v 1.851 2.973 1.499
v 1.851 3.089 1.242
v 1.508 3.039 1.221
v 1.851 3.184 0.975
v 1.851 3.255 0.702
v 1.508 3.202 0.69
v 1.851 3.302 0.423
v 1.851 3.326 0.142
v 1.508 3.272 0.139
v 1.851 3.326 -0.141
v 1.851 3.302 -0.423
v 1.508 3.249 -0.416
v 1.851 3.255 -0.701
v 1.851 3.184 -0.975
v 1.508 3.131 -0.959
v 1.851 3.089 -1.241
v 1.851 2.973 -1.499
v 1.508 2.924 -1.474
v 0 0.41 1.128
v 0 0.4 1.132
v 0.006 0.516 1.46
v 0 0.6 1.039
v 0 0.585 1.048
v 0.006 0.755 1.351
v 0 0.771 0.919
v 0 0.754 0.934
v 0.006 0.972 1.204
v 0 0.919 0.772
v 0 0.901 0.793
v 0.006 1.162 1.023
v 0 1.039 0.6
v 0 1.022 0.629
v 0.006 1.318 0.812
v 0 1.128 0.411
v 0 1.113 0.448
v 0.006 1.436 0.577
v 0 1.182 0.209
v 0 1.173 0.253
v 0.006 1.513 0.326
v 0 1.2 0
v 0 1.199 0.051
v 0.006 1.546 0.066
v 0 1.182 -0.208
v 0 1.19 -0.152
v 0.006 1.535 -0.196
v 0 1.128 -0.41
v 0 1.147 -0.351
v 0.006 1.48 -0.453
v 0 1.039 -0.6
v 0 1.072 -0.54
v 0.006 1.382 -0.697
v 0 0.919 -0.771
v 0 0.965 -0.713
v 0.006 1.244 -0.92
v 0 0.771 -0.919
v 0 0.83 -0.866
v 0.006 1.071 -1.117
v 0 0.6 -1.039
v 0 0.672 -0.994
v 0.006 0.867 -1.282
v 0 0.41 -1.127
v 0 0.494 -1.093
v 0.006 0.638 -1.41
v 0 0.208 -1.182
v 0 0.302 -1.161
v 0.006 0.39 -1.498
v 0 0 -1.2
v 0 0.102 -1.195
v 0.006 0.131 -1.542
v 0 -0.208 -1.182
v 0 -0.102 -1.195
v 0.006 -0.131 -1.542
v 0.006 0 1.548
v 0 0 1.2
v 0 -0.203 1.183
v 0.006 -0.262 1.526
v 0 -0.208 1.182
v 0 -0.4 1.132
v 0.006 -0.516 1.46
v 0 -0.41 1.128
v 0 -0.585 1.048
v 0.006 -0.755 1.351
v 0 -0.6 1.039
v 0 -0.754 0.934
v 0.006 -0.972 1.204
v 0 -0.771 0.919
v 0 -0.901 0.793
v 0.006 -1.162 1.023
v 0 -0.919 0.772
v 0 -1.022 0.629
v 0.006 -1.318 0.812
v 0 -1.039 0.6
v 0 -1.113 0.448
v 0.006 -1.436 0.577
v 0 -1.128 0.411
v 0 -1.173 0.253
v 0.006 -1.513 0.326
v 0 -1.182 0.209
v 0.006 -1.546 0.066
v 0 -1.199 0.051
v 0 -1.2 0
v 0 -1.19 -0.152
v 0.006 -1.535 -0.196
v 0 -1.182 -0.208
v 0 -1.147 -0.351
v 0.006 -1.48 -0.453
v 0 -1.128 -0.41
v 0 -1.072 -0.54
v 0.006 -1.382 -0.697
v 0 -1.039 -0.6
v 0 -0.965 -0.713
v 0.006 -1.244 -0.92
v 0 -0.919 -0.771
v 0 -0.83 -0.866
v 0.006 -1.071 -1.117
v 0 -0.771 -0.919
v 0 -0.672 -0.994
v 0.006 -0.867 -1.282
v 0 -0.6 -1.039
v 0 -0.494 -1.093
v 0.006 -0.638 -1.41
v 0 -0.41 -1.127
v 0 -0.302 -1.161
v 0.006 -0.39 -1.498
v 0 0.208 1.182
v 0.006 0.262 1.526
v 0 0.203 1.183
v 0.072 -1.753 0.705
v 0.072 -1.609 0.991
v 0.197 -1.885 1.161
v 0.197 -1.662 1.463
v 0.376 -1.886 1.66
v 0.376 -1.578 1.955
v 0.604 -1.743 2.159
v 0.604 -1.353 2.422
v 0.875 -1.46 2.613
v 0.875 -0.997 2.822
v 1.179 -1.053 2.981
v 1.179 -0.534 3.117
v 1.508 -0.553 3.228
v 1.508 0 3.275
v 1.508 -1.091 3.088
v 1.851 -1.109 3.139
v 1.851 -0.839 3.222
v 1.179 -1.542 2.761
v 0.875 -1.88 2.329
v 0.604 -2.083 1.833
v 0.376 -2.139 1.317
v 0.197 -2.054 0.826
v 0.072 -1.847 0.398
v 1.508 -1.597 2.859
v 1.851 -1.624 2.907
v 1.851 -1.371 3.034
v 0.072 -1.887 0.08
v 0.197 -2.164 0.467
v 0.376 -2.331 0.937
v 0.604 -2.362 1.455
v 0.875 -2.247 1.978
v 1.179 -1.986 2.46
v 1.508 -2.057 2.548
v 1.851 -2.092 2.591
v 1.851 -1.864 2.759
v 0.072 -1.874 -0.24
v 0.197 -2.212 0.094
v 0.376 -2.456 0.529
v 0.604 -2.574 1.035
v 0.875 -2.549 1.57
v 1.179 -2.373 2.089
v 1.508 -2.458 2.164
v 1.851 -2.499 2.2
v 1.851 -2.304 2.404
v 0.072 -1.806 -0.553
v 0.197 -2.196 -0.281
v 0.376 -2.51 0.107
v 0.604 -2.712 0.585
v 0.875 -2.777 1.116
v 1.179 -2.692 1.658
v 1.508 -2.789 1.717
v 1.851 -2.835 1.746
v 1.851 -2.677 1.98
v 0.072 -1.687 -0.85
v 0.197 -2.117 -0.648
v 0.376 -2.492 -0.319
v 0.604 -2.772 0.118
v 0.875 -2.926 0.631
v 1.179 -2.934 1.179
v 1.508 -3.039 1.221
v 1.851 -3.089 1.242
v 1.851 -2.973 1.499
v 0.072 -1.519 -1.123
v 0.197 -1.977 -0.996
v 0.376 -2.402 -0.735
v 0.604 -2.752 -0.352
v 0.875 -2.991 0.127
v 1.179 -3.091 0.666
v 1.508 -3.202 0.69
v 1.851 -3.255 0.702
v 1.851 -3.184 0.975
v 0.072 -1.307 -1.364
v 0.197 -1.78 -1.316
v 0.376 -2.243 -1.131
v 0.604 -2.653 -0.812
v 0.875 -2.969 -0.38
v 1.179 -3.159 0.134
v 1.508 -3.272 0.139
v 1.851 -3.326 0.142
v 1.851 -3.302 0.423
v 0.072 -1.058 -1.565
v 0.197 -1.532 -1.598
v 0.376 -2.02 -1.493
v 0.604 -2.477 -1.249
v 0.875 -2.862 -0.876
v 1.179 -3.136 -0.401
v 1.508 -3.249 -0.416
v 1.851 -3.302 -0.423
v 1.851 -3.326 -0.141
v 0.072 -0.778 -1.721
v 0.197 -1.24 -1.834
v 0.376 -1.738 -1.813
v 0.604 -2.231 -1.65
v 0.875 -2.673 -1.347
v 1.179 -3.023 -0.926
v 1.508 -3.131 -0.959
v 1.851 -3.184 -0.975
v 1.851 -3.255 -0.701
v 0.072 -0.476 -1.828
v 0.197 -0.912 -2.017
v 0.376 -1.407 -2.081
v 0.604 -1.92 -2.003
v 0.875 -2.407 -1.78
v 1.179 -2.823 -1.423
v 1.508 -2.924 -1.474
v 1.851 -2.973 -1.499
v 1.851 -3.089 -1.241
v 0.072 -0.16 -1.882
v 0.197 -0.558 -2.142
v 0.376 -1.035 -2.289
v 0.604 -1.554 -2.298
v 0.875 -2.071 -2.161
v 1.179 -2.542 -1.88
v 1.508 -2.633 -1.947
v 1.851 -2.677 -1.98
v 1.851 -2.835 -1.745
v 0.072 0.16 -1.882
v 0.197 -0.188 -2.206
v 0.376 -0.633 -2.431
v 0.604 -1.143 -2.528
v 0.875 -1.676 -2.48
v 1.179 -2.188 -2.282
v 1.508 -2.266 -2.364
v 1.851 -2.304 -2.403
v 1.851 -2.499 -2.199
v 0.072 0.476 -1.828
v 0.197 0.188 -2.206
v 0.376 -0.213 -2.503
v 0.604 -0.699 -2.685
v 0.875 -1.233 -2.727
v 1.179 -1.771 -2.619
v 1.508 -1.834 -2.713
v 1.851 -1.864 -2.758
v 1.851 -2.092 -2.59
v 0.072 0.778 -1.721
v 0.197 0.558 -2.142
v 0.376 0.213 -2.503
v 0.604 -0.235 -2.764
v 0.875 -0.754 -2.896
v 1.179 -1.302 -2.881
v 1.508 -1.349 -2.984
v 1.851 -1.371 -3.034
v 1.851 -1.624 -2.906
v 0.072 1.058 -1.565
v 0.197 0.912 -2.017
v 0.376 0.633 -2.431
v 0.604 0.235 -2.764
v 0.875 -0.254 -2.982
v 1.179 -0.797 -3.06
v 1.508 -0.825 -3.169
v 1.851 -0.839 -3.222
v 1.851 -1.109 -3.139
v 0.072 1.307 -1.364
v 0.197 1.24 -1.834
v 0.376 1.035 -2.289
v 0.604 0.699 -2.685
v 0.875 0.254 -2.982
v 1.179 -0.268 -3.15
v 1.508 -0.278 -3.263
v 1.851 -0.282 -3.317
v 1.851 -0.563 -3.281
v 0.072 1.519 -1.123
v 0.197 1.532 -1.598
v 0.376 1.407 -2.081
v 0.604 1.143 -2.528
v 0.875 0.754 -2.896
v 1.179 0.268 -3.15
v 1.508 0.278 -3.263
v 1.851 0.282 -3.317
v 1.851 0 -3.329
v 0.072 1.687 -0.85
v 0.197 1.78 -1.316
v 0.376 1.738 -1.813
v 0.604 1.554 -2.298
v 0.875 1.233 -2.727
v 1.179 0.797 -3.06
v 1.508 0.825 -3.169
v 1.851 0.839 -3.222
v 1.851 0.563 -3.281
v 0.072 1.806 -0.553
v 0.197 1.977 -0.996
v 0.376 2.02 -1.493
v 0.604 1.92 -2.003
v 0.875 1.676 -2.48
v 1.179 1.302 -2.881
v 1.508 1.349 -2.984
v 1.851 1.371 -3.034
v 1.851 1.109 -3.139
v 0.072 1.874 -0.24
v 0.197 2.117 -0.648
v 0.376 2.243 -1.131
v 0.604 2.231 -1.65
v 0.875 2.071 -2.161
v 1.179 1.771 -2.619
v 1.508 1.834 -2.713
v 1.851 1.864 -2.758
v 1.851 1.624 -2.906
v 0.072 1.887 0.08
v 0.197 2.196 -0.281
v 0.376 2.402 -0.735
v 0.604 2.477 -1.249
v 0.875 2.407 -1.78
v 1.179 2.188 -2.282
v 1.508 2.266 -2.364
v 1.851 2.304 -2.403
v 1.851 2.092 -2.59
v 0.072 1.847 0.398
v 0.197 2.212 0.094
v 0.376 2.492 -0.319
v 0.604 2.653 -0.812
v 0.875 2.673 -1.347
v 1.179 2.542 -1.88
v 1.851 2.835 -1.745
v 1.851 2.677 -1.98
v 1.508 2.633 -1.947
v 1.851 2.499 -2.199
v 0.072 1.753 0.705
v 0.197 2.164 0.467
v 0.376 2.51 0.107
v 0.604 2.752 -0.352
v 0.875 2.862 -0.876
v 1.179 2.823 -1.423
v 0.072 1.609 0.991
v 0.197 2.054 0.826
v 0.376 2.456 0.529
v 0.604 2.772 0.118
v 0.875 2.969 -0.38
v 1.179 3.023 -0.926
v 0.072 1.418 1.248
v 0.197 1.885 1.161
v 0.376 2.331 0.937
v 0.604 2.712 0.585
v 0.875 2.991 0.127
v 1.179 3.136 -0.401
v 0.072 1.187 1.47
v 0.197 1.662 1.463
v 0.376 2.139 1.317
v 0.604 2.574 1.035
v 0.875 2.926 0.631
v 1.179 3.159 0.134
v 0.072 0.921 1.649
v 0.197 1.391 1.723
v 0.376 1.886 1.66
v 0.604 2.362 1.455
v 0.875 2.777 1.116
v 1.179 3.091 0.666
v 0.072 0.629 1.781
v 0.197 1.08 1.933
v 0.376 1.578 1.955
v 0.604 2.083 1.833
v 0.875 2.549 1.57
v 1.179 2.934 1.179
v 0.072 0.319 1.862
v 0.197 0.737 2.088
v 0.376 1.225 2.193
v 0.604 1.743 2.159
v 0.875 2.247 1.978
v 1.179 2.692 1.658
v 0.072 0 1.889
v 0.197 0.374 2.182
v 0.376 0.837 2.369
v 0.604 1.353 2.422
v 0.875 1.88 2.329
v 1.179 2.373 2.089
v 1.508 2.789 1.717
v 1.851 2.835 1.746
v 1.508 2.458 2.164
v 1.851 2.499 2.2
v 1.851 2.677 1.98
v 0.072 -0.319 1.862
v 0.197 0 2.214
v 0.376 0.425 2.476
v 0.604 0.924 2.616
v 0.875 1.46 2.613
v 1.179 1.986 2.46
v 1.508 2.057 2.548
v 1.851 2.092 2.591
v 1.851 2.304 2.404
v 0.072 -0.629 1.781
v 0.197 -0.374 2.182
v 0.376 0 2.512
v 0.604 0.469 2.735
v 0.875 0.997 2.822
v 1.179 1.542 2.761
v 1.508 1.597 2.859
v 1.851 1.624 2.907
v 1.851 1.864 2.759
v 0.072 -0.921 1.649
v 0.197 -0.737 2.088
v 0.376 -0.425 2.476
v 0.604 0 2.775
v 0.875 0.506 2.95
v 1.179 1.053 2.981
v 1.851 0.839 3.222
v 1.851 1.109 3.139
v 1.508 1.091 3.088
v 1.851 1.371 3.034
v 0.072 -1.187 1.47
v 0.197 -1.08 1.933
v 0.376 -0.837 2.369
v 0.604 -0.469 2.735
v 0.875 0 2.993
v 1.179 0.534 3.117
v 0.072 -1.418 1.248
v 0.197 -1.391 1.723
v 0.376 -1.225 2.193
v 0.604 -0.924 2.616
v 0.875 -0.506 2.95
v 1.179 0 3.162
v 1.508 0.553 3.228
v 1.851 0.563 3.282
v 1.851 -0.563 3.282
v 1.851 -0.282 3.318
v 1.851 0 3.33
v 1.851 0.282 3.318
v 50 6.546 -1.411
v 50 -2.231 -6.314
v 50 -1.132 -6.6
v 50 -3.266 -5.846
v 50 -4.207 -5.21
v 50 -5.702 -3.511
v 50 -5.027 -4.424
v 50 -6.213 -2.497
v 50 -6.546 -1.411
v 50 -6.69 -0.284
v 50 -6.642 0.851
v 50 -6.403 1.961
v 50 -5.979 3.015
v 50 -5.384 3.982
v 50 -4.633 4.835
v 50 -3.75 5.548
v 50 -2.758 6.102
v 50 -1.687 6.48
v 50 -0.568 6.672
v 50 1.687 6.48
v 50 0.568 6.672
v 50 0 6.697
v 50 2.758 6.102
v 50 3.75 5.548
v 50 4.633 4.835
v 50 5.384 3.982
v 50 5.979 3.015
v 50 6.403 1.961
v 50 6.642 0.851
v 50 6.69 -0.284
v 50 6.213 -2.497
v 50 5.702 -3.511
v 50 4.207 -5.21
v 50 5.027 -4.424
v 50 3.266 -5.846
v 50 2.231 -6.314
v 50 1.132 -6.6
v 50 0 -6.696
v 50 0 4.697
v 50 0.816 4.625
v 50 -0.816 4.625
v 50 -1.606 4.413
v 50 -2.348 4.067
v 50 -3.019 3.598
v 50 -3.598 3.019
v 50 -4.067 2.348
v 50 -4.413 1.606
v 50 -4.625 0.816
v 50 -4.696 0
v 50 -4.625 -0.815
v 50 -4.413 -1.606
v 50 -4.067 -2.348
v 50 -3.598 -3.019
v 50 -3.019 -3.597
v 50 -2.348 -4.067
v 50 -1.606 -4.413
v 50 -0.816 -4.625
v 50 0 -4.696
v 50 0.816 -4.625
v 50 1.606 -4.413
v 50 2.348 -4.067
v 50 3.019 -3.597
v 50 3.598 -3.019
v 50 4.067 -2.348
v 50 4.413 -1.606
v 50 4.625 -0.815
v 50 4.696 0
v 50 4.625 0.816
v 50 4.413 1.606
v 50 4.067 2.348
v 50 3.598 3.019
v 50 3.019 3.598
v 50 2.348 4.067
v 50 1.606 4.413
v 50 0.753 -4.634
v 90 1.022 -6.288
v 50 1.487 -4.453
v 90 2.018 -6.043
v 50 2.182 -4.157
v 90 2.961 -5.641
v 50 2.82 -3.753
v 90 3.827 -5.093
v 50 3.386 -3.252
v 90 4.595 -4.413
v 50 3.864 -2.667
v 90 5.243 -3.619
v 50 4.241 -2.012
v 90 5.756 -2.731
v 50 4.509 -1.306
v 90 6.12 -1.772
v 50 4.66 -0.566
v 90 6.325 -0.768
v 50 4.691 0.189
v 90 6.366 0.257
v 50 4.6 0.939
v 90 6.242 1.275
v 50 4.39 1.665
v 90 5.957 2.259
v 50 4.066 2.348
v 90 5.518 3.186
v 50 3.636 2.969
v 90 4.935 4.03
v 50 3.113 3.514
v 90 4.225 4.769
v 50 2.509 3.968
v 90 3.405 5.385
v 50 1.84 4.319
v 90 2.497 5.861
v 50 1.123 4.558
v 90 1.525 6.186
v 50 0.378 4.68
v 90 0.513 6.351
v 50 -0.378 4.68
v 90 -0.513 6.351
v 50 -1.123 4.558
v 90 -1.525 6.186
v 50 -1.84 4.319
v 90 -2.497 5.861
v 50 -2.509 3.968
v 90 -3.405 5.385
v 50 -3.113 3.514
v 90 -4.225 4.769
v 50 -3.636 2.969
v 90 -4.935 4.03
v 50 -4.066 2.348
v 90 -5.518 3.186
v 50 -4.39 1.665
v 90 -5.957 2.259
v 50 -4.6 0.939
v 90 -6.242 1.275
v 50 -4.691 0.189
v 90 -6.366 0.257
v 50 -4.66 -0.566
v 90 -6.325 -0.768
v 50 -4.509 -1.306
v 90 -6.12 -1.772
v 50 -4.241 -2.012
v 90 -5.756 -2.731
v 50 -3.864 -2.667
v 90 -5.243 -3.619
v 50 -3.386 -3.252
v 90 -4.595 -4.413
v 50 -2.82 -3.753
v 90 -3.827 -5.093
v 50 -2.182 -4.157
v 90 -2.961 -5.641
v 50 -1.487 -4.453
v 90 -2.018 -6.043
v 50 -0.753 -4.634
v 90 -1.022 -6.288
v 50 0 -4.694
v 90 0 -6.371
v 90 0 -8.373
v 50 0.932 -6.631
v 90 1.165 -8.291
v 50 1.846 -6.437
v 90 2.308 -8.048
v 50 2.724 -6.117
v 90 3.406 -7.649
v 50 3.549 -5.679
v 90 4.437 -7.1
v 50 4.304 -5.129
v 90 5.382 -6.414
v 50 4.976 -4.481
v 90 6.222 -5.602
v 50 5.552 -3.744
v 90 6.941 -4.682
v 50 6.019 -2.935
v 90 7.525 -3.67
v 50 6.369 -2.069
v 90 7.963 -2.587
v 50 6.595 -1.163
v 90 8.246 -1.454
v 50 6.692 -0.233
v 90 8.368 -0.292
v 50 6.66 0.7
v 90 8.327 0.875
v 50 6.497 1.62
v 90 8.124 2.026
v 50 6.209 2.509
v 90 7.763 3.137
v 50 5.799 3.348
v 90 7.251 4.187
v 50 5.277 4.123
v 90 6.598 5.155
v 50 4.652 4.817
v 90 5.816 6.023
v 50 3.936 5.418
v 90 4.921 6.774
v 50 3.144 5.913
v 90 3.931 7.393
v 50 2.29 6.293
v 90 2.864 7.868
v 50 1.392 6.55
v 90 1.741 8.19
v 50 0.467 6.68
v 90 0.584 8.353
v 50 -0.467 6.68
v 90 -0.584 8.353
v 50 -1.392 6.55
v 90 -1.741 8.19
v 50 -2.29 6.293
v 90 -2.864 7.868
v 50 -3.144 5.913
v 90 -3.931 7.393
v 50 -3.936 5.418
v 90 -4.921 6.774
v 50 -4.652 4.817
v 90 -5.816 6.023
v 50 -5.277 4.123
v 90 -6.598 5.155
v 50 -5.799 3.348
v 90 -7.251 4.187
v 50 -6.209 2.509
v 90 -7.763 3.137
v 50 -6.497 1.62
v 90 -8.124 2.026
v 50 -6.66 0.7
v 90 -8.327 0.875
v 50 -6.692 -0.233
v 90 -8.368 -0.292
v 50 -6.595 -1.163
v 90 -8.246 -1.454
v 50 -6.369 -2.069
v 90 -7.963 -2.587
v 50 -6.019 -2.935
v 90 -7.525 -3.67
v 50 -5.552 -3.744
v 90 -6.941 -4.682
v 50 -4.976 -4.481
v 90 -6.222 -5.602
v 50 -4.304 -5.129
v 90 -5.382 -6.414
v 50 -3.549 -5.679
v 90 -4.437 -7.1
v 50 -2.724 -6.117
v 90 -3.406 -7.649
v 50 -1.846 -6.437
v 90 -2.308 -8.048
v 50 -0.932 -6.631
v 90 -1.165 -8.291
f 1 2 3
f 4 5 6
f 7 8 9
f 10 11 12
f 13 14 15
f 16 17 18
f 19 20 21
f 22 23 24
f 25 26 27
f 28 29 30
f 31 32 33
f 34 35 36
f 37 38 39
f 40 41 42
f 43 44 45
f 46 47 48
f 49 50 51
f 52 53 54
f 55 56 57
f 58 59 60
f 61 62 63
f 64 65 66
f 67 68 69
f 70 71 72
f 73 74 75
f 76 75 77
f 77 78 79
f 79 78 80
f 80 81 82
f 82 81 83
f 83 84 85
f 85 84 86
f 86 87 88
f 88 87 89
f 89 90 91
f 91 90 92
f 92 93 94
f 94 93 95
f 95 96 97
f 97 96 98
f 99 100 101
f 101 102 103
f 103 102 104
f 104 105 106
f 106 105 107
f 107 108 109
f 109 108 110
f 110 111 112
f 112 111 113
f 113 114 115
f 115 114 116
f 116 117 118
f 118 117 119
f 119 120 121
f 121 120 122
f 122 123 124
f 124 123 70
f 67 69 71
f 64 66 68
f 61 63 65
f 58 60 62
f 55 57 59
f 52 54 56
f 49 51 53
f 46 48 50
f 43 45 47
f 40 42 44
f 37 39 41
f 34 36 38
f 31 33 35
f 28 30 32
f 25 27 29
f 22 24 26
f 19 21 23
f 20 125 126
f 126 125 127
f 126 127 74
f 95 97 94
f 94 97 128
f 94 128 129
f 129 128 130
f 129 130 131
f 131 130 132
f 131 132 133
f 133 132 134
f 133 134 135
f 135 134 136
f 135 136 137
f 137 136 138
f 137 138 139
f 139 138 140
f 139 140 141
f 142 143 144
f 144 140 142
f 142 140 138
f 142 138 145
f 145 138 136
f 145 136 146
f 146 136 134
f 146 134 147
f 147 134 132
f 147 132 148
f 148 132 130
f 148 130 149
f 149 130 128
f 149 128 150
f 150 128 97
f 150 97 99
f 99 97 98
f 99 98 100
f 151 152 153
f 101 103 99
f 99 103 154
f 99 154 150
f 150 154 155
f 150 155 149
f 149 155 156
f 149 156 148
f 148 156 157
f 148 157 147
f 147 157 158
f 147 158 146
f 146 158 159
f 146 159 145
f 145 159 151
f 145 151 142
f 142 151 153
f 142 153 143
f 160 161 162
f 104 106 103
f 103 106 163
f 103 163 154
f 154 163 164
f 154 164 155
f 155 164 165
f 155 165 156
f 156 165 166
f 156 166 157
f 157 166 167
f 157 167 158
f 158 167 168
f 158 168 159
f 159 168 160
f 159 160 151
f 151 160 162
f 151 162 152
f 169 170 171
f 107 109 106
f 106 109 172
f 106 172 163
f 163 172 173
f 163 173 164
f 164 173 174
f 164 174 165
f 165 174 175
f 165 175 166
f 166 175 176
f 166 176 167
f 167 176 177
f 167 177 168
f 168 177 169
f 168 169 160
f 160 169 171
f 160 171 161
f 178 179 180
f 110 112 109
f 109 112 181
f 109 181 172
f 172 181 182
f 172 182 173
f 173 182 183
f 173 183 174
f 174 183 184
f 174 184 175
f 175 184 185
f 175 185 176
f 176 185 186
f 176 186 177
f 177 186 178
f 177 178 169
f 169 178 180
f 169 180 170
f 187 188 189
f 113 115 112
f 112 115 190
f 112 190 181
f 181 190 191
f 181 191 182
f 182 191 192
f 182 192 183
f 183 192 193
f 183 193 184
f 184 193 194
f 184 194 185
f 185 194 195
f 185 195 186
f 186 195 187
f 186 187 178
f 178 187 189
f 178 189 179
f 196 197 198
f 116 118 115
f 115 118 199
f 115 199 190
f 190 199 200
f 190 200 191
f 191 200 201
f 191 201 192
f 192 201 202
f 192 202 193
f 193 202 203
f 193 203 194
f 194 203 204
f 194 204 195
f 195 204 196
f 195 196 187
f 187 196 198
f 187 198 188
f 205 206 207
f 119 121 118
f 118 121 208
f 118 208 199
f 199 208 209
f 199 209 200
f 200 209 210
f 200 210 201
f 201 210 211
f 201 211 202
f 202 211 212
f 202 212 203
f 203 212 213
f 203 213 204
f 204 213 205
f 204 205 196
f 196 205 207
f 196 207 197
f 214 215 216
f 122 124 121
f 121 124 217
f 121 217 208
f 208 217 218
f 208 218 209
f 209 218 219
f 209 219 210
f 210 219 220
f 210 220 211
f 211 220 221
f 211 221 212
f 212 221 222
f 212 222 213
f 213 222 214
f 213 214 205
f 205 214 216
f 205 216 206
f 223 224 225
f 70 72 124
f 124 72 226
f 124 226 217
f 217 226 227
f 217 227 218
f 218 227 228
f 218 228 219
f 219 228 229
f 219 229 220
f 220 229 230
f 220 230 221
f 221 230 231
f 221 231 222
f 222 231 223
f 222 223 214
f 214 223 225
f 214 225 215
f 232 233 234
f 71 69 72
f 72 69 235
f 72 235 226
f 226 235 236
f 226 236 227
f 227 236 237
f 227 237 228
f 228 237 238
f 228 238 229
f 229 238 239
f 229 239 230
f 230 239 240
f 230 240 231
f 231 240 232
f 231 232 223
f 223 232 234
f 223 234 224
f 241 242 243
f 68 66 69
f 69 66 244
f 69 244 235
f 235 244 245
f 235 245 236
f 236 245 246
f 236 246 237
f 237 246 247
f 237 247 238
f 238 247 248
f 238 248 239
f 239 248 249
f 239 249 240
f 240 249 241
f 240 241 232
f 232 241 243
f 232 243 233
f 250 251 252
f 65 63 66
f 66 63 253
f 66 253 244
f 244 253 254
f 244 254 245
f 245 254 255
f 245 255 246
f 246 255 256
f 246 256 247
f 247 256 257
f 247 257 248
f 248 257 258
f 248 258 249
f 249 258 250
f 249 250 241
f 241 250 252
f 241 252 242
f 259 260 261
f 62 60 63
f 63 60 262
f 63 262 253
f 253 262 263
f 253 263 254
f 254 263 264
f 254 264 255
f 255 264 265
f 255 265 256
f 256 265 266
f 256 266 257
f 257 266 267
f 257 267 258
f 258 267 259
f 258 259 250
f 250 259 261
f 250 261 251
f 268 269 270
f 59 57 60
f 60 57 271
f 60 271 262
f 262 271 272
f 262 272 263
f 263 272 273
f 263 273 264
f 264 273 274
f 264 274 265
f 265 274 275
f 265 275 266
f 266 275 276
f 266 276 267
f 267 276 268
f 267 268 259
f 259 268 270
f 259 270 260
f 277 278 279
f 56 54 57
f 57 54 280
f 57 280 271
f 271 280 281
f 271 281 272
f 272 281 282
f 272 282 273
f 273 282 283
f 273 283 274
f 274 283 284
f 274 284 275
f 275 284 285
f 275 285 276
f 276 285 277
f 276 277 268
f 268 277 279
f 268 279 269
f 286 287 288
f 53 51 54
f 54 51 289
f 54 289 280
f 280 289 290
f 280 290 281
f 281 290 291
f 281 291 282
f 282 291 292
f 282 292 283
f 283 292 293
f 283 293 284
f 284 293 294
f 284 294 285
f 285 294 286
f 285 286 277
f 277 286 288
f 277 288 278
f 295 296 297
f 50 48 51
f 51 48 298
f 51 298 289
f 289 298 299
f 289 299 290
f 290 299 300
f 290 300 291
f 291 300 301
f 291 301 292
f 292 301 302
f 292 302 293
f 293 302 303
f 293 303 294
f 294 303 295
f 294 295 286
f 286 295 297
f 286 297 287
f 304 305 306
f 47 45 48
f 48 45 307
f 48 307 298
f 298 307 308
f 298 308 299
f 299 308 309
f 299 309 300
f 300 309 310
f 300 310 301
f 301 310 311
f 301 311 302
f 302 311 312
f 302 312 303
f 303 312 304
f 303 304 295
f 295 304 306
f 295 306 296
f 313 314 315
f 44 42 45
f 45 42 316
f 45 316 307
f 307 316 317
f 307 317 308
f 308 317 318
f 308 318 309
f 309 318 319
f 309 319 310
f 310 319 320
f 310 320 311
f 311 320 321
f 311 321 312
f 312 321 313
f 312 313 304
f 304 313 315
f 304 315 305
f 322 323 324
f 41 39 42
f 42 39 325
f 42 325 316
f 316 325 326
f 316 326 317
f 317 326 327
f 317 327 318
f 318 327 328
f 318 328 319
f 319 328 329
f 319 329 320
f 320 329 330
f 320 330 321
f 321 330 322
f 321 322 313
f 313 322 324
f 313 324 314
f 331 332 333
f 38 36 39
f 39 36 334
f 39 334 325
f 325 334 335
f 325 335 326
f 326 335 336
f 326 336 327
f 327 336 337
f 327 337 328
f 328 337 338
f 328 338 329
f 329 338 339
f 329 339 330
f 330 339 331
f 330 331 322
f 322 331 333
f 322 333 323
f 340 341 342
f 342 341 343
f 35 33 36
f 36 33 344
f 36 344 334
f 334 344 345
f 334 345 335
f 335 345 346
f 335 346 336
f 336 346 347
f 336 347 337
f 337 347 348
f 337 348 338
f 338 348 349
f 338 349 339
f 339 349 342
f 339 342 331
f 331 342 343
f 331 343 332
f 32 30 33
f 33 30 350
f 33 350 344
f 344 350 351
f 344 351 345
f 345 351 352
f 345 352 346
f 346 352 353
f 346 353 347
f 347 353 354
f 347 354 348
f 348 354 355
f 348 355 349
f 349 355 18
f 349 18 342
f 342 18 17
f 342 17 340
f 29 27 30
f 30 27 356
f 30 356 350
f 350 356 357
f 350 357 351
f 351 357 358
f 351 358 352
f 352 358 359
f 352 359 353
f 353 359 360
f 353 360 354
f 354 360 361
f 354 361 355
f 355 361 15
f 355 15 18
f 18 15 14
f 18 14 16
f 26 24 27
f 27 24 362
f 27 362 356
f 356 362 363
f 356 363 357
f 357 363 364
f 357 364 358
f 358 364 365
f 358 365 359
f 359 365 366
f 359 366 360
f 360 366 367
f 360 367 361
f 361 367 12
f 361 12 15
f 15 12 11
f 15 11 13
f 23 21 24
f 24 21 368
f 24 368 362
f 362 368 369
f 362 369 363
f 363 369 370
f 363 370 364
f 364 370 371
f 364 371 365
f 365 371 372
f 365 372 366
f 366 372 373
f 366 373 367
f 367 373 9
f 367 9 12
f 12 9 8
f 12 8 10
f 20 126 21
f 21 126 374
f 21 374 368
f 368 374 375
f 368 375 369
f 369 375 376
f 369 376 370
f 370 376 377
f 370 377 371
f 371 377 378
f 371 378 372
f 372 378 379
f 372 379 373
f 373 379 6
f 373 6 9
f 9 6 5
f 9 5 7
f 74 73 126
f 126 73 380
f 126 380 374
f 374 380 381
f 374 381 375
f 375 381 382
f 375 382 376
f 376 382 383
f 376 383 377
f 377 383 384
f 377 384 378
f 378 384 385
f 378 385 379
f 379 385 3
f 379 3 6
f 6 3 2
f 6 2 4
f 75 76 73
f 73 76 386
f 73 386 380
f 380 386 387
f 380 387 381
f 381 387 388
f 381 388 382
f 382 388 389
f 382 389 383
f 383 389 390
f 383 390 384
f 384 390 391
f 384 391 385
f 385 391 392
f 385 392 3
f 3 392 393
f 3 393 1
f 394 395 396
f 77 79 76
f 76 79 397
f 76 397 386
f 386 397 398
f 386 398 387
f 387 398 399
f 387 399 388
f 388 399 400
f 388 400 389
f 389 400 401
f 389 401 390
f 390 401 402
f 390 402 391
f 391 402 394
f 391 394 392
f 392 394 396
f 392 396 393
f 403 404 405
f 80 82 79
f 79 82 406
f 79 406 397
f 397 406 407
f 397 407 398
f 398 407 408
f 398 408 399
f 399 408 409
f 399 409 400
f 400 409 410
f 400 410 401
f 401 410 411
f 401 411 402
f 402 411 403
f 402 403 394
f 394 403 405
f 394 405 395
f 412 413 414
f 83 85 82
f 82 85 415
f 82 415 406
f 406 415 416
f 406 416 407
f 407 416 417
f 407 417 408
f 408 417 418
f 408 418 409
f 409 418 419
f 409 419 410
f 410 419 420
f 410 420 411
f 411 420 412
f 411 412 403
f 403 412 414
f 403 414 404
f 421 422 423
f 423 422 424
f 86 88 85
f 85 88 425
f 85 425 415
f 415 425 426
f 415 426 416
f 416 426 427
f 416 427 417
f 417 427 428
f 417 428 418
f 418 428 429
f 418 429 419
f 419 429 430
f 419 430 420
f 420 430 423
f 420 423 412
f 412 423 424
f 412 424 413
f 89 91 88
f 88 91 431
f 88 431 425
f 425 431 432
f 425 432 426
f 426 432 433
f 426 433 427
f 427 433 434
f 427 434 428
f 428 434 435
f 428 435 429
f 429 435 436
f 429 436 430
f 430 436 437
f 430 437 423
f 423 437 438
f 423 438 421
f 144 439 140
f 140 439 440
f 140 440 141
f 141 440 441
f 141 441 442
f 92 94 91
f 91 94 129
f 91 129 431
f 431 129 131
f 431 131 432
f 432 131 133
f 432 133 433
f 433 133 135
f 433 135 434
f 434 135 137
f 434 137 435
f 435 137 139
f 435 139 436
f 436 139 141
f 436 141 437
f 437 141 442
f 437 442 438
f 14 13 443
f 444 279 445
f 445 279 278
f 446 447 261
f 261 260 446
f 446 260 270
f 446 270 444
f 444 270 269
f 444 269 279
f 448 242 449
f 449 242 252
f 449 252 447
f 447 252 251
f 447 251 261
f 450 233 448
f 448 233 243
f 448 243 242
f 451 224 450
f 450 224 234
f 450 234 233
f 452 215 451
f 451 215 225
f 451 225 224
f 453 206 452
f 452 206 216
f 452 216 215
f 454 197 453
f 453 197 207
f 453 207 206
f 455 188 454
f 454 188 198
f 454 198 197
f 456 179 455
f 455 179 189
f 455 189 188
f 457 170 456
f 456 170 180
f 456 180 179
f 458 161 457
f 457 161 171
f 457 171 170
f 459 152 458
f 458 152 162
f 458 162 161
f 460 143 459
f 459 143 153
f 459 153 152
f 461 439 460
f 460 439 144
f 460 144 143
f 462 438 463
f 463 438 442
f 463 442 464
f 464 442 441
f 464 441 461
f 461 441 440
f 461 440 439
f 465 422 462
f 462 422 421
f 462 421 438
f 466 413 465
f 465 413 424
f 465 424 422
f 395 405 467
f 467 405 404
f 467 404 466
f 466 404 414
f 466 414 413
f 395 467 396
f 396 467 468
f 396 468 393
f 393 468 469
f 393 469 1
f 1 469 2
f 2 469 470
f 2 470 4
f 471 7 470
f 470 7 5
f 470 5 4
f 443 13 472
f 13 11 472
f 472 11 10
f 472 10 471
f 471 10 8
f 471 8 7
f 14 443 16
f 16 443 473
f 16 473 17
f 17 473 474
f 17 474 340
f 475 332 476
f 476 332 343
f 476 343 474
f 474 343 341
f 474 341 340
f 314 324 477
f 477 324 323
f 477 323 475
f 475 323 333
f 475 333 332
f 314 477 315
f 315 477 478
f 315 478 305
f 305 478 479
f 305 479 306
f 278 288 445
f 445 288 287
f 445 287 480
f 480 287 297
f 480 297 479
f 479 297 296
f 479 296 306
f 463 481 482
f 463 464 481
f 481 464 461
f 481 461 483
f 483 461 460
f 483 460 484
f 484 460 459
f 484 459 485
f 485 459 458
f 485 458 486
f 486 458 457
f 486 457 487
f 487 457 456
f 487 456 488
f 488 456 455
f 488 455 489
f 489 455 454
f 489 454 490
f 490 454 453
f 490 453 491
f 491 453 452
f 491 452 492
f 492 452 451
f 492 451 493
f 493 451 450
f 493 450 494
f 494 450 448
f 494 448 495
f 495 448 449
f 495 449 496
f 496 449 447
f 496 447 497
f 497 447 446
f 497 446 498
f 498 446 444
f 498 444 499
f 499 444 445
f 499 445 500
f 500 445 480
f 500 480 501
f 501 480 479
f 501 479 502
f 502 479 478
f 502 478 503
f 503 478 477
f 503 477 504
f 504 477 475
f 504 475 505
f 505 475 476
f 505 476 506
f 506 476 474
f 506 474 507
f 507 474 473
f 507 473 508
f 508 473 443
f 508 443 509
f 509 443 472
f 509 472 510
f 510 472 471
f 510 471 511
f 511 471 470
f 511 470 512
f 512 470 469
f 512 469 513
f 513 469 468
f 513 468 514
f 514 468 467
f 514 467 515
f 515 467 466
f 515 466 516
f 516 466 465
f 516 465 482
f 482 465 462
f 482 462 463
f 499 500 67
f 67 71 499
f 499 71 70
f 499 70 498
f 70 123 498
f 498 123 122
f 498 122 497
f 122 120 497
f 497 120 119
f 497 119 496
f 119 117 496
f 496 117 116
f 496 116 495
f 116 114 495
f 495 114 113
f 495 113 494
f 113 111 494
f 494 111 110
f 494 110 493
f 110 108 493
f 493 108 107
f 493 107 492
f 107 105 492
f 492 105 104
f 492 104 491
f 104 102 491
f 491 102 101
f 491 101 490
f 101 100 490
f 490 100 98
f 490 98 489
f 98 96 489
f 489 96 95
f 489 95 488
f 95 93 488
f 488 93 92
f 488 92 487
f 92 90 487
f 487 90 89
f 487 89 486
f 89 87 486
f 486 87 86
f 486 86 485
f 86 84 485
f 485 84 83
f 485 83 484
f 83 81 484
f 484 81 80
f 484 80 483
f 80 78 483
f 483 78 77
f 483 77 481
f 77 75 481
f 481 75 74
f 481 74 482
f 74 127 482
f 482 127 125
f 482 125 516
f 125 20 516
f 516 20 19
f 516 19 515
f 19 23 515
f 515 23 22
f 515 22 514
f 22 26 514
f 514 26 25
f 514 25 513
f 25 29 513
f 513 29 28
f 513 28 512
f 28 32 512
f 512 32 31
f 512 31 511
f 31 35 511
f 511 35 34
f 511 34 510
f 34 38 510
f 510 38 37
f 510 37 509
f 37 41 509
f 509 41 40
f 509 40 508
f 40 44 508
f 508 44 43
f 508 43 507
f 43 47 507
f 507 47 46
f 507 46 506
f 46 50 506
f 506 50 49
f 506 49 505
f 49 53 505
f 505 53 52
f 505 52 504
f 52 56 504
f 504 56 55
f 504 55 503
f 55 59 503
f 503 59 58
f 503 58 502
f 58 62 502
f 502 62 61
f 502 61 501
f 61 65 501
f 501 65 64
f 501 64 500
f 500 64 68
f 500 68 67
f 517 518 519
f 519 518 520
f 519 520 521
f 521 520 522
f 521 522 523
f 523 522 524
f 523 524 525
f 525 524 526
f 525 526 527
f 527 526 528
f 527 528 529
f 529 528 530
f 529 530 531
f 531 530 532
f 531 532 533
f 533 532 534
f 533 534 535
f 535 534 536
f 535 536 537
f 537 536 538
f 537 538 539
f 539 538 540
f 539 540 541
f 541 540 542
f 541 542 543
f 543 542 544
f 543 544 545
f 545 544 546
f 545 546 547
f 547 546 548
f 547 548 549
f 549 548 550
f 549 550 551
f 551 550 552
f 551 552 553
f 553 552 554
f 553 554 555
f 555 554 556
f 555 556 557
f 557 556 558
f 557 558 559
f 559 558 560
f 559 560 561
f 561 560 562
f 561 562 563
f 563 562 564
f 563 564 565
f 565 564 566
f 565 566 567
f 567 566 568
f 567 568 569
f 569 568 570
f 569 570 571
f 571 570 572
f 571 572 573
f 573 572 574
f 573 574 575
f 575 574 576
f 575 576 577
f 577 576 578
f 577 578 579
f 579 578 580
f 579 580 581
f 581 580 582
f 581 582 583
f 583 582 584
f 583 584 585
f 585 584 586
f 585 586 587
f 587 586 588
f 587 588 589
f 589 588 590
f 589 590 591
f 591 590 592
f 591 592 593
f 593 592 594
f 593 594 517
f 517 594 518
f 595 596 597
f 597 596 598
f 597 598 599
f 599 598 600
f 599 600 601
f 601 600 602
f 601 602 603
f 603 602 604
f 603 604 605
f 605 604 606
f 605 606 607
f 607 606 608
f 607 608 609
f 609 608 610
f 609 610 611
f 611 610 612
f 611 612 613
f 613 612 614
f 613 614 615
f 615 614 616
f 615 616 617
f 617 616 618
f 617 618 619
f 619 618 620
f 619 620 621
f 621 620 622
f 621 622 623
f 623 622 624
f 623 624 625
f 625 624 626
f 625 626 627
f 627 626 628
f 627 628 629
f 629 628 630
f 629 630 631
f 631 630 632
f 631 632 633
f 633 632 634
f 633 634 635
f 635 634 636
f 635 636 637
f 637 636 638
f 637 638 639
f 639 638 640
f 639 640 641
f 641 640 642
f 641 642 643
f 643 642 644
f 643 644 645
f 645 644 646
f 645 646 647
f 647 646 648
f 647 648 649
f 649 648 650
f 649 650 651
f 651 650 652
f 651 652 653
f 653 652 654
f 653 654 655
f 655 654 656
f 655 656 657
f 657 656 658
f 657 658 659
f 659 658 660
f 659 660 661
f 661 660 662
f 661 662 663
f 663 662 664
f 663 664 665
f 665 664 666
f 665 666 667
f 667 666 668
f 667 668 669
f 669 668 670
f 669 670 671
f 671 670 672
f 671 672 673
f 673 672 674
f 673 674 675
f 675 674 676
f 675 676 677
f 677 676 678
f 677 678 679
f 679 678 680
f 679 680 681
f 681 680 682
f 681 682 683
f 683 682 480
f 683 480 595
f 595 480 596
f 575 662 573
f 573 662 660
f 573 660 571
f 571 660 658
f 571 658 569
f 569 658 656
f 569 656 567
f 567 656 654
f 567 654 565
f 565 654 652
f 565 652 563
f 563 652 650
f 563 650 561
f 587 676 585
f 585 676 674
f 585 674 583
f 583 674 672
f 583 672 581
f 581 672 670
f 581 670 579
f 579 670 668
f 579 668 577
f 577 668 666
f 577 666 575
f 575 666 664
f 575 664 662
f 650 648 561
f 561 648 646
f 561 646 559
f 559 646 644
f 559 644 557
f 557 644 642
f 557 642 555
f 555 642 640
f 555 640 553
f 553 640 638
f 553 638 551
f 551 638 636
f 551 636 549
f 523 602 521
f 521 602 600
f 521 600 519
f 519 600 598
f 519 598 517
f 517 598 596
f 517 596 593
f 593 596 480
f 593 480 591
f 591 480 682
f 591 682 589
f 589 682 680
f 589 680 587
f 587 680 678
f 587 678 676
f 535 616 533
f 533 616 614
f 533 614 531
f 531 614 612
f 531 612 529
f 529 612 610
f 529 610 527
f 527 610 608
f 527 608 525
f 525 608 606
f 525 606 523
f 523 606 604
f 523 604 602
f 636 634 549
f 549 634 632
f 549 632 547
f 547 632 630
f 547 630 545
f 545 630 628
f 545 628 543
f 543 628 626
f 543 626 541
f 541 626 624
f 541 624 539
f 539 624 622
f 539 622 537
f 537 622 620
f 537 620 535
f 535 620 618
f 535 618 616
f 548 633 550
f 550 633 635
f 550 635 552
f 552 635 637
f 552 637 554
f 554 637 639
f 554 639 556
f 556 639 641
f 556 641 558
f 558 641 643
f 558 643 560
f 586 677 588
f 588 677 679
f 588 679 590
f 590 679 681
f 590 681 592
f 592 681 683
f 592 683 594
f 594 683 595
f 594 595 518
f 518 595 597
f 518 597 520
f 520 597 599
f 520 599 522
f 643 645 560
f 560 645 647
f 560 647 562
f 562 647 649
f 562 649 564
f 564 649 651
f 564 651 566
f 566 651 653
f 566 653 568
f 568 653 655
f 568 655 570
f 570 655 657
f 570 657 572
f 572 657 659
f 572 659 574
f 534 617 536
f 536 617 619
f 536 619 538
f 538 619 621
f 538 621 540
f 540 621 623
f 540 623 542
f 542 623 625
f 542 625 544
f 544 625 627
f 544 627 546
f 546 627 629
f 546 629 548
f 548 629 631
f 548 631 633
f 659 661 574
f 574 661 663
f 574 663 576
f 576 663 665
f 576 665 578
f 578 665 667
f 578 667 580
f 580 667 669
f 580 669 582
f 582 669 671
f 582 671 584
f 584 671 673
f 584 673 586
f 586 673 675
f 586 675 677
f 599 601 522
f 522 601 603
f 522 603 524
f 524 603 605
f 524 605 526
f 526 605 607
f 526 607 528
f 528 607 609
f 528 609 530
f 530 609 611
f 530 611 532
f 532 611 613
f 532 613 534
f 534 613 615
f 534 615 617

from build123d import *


with BuildPart() as part:
    # Sketch2 → Revolve2 (revolve)
    with BuildSketch(Plane.XY, mode=Mode.PRIVATE) as revolve2_sk:
        with BuildLine():
            Line((0, 1.2), (50, 4.696340597))
            Line((50, 4.696340597), (50, 6.696340597))
            Line((50, 6.696340597), (1.851094968, 3.32944117))
            ThreePointArc((1.851094968, 3.32944117), (0.484525778, 2.648094905), (0, 1.2))
        make_face()
    revolve(revolve2_sk.sketch.rotate(Axis((-19.275847123, 0, 0), (1, 0, 0)), 90), axis=Axis((-19.275847123, 0, 0), (1, 0, 0)))


with BuildPart() as body_2:
    # Sketch3 → Revolve3 (revolve)
    with BuildSketch(Plane.XY, mode=Mode.PRIVATE) as revolve3_sk:
        Polygon((50, 4.694584717), (180, 10.143199062), (180, 12.144954942), (50, 6.696340597), align=None)
    revolve(revolve3_sk.sketch.rotate(Axis((50, 0, 0), (-1, 0, 0)), 90), axis=Axis((50, 0, 0), (-1, 0, 0)))

    # SurfaceCut1
    split(bisect_by=Plane(origin=(90, 0, 0), x_dir=(0, 0, -1), z_dir=(1, 0, 0)), keep=Keep.BOTTOM)


solid = Compound([part.part, body_2.part])
